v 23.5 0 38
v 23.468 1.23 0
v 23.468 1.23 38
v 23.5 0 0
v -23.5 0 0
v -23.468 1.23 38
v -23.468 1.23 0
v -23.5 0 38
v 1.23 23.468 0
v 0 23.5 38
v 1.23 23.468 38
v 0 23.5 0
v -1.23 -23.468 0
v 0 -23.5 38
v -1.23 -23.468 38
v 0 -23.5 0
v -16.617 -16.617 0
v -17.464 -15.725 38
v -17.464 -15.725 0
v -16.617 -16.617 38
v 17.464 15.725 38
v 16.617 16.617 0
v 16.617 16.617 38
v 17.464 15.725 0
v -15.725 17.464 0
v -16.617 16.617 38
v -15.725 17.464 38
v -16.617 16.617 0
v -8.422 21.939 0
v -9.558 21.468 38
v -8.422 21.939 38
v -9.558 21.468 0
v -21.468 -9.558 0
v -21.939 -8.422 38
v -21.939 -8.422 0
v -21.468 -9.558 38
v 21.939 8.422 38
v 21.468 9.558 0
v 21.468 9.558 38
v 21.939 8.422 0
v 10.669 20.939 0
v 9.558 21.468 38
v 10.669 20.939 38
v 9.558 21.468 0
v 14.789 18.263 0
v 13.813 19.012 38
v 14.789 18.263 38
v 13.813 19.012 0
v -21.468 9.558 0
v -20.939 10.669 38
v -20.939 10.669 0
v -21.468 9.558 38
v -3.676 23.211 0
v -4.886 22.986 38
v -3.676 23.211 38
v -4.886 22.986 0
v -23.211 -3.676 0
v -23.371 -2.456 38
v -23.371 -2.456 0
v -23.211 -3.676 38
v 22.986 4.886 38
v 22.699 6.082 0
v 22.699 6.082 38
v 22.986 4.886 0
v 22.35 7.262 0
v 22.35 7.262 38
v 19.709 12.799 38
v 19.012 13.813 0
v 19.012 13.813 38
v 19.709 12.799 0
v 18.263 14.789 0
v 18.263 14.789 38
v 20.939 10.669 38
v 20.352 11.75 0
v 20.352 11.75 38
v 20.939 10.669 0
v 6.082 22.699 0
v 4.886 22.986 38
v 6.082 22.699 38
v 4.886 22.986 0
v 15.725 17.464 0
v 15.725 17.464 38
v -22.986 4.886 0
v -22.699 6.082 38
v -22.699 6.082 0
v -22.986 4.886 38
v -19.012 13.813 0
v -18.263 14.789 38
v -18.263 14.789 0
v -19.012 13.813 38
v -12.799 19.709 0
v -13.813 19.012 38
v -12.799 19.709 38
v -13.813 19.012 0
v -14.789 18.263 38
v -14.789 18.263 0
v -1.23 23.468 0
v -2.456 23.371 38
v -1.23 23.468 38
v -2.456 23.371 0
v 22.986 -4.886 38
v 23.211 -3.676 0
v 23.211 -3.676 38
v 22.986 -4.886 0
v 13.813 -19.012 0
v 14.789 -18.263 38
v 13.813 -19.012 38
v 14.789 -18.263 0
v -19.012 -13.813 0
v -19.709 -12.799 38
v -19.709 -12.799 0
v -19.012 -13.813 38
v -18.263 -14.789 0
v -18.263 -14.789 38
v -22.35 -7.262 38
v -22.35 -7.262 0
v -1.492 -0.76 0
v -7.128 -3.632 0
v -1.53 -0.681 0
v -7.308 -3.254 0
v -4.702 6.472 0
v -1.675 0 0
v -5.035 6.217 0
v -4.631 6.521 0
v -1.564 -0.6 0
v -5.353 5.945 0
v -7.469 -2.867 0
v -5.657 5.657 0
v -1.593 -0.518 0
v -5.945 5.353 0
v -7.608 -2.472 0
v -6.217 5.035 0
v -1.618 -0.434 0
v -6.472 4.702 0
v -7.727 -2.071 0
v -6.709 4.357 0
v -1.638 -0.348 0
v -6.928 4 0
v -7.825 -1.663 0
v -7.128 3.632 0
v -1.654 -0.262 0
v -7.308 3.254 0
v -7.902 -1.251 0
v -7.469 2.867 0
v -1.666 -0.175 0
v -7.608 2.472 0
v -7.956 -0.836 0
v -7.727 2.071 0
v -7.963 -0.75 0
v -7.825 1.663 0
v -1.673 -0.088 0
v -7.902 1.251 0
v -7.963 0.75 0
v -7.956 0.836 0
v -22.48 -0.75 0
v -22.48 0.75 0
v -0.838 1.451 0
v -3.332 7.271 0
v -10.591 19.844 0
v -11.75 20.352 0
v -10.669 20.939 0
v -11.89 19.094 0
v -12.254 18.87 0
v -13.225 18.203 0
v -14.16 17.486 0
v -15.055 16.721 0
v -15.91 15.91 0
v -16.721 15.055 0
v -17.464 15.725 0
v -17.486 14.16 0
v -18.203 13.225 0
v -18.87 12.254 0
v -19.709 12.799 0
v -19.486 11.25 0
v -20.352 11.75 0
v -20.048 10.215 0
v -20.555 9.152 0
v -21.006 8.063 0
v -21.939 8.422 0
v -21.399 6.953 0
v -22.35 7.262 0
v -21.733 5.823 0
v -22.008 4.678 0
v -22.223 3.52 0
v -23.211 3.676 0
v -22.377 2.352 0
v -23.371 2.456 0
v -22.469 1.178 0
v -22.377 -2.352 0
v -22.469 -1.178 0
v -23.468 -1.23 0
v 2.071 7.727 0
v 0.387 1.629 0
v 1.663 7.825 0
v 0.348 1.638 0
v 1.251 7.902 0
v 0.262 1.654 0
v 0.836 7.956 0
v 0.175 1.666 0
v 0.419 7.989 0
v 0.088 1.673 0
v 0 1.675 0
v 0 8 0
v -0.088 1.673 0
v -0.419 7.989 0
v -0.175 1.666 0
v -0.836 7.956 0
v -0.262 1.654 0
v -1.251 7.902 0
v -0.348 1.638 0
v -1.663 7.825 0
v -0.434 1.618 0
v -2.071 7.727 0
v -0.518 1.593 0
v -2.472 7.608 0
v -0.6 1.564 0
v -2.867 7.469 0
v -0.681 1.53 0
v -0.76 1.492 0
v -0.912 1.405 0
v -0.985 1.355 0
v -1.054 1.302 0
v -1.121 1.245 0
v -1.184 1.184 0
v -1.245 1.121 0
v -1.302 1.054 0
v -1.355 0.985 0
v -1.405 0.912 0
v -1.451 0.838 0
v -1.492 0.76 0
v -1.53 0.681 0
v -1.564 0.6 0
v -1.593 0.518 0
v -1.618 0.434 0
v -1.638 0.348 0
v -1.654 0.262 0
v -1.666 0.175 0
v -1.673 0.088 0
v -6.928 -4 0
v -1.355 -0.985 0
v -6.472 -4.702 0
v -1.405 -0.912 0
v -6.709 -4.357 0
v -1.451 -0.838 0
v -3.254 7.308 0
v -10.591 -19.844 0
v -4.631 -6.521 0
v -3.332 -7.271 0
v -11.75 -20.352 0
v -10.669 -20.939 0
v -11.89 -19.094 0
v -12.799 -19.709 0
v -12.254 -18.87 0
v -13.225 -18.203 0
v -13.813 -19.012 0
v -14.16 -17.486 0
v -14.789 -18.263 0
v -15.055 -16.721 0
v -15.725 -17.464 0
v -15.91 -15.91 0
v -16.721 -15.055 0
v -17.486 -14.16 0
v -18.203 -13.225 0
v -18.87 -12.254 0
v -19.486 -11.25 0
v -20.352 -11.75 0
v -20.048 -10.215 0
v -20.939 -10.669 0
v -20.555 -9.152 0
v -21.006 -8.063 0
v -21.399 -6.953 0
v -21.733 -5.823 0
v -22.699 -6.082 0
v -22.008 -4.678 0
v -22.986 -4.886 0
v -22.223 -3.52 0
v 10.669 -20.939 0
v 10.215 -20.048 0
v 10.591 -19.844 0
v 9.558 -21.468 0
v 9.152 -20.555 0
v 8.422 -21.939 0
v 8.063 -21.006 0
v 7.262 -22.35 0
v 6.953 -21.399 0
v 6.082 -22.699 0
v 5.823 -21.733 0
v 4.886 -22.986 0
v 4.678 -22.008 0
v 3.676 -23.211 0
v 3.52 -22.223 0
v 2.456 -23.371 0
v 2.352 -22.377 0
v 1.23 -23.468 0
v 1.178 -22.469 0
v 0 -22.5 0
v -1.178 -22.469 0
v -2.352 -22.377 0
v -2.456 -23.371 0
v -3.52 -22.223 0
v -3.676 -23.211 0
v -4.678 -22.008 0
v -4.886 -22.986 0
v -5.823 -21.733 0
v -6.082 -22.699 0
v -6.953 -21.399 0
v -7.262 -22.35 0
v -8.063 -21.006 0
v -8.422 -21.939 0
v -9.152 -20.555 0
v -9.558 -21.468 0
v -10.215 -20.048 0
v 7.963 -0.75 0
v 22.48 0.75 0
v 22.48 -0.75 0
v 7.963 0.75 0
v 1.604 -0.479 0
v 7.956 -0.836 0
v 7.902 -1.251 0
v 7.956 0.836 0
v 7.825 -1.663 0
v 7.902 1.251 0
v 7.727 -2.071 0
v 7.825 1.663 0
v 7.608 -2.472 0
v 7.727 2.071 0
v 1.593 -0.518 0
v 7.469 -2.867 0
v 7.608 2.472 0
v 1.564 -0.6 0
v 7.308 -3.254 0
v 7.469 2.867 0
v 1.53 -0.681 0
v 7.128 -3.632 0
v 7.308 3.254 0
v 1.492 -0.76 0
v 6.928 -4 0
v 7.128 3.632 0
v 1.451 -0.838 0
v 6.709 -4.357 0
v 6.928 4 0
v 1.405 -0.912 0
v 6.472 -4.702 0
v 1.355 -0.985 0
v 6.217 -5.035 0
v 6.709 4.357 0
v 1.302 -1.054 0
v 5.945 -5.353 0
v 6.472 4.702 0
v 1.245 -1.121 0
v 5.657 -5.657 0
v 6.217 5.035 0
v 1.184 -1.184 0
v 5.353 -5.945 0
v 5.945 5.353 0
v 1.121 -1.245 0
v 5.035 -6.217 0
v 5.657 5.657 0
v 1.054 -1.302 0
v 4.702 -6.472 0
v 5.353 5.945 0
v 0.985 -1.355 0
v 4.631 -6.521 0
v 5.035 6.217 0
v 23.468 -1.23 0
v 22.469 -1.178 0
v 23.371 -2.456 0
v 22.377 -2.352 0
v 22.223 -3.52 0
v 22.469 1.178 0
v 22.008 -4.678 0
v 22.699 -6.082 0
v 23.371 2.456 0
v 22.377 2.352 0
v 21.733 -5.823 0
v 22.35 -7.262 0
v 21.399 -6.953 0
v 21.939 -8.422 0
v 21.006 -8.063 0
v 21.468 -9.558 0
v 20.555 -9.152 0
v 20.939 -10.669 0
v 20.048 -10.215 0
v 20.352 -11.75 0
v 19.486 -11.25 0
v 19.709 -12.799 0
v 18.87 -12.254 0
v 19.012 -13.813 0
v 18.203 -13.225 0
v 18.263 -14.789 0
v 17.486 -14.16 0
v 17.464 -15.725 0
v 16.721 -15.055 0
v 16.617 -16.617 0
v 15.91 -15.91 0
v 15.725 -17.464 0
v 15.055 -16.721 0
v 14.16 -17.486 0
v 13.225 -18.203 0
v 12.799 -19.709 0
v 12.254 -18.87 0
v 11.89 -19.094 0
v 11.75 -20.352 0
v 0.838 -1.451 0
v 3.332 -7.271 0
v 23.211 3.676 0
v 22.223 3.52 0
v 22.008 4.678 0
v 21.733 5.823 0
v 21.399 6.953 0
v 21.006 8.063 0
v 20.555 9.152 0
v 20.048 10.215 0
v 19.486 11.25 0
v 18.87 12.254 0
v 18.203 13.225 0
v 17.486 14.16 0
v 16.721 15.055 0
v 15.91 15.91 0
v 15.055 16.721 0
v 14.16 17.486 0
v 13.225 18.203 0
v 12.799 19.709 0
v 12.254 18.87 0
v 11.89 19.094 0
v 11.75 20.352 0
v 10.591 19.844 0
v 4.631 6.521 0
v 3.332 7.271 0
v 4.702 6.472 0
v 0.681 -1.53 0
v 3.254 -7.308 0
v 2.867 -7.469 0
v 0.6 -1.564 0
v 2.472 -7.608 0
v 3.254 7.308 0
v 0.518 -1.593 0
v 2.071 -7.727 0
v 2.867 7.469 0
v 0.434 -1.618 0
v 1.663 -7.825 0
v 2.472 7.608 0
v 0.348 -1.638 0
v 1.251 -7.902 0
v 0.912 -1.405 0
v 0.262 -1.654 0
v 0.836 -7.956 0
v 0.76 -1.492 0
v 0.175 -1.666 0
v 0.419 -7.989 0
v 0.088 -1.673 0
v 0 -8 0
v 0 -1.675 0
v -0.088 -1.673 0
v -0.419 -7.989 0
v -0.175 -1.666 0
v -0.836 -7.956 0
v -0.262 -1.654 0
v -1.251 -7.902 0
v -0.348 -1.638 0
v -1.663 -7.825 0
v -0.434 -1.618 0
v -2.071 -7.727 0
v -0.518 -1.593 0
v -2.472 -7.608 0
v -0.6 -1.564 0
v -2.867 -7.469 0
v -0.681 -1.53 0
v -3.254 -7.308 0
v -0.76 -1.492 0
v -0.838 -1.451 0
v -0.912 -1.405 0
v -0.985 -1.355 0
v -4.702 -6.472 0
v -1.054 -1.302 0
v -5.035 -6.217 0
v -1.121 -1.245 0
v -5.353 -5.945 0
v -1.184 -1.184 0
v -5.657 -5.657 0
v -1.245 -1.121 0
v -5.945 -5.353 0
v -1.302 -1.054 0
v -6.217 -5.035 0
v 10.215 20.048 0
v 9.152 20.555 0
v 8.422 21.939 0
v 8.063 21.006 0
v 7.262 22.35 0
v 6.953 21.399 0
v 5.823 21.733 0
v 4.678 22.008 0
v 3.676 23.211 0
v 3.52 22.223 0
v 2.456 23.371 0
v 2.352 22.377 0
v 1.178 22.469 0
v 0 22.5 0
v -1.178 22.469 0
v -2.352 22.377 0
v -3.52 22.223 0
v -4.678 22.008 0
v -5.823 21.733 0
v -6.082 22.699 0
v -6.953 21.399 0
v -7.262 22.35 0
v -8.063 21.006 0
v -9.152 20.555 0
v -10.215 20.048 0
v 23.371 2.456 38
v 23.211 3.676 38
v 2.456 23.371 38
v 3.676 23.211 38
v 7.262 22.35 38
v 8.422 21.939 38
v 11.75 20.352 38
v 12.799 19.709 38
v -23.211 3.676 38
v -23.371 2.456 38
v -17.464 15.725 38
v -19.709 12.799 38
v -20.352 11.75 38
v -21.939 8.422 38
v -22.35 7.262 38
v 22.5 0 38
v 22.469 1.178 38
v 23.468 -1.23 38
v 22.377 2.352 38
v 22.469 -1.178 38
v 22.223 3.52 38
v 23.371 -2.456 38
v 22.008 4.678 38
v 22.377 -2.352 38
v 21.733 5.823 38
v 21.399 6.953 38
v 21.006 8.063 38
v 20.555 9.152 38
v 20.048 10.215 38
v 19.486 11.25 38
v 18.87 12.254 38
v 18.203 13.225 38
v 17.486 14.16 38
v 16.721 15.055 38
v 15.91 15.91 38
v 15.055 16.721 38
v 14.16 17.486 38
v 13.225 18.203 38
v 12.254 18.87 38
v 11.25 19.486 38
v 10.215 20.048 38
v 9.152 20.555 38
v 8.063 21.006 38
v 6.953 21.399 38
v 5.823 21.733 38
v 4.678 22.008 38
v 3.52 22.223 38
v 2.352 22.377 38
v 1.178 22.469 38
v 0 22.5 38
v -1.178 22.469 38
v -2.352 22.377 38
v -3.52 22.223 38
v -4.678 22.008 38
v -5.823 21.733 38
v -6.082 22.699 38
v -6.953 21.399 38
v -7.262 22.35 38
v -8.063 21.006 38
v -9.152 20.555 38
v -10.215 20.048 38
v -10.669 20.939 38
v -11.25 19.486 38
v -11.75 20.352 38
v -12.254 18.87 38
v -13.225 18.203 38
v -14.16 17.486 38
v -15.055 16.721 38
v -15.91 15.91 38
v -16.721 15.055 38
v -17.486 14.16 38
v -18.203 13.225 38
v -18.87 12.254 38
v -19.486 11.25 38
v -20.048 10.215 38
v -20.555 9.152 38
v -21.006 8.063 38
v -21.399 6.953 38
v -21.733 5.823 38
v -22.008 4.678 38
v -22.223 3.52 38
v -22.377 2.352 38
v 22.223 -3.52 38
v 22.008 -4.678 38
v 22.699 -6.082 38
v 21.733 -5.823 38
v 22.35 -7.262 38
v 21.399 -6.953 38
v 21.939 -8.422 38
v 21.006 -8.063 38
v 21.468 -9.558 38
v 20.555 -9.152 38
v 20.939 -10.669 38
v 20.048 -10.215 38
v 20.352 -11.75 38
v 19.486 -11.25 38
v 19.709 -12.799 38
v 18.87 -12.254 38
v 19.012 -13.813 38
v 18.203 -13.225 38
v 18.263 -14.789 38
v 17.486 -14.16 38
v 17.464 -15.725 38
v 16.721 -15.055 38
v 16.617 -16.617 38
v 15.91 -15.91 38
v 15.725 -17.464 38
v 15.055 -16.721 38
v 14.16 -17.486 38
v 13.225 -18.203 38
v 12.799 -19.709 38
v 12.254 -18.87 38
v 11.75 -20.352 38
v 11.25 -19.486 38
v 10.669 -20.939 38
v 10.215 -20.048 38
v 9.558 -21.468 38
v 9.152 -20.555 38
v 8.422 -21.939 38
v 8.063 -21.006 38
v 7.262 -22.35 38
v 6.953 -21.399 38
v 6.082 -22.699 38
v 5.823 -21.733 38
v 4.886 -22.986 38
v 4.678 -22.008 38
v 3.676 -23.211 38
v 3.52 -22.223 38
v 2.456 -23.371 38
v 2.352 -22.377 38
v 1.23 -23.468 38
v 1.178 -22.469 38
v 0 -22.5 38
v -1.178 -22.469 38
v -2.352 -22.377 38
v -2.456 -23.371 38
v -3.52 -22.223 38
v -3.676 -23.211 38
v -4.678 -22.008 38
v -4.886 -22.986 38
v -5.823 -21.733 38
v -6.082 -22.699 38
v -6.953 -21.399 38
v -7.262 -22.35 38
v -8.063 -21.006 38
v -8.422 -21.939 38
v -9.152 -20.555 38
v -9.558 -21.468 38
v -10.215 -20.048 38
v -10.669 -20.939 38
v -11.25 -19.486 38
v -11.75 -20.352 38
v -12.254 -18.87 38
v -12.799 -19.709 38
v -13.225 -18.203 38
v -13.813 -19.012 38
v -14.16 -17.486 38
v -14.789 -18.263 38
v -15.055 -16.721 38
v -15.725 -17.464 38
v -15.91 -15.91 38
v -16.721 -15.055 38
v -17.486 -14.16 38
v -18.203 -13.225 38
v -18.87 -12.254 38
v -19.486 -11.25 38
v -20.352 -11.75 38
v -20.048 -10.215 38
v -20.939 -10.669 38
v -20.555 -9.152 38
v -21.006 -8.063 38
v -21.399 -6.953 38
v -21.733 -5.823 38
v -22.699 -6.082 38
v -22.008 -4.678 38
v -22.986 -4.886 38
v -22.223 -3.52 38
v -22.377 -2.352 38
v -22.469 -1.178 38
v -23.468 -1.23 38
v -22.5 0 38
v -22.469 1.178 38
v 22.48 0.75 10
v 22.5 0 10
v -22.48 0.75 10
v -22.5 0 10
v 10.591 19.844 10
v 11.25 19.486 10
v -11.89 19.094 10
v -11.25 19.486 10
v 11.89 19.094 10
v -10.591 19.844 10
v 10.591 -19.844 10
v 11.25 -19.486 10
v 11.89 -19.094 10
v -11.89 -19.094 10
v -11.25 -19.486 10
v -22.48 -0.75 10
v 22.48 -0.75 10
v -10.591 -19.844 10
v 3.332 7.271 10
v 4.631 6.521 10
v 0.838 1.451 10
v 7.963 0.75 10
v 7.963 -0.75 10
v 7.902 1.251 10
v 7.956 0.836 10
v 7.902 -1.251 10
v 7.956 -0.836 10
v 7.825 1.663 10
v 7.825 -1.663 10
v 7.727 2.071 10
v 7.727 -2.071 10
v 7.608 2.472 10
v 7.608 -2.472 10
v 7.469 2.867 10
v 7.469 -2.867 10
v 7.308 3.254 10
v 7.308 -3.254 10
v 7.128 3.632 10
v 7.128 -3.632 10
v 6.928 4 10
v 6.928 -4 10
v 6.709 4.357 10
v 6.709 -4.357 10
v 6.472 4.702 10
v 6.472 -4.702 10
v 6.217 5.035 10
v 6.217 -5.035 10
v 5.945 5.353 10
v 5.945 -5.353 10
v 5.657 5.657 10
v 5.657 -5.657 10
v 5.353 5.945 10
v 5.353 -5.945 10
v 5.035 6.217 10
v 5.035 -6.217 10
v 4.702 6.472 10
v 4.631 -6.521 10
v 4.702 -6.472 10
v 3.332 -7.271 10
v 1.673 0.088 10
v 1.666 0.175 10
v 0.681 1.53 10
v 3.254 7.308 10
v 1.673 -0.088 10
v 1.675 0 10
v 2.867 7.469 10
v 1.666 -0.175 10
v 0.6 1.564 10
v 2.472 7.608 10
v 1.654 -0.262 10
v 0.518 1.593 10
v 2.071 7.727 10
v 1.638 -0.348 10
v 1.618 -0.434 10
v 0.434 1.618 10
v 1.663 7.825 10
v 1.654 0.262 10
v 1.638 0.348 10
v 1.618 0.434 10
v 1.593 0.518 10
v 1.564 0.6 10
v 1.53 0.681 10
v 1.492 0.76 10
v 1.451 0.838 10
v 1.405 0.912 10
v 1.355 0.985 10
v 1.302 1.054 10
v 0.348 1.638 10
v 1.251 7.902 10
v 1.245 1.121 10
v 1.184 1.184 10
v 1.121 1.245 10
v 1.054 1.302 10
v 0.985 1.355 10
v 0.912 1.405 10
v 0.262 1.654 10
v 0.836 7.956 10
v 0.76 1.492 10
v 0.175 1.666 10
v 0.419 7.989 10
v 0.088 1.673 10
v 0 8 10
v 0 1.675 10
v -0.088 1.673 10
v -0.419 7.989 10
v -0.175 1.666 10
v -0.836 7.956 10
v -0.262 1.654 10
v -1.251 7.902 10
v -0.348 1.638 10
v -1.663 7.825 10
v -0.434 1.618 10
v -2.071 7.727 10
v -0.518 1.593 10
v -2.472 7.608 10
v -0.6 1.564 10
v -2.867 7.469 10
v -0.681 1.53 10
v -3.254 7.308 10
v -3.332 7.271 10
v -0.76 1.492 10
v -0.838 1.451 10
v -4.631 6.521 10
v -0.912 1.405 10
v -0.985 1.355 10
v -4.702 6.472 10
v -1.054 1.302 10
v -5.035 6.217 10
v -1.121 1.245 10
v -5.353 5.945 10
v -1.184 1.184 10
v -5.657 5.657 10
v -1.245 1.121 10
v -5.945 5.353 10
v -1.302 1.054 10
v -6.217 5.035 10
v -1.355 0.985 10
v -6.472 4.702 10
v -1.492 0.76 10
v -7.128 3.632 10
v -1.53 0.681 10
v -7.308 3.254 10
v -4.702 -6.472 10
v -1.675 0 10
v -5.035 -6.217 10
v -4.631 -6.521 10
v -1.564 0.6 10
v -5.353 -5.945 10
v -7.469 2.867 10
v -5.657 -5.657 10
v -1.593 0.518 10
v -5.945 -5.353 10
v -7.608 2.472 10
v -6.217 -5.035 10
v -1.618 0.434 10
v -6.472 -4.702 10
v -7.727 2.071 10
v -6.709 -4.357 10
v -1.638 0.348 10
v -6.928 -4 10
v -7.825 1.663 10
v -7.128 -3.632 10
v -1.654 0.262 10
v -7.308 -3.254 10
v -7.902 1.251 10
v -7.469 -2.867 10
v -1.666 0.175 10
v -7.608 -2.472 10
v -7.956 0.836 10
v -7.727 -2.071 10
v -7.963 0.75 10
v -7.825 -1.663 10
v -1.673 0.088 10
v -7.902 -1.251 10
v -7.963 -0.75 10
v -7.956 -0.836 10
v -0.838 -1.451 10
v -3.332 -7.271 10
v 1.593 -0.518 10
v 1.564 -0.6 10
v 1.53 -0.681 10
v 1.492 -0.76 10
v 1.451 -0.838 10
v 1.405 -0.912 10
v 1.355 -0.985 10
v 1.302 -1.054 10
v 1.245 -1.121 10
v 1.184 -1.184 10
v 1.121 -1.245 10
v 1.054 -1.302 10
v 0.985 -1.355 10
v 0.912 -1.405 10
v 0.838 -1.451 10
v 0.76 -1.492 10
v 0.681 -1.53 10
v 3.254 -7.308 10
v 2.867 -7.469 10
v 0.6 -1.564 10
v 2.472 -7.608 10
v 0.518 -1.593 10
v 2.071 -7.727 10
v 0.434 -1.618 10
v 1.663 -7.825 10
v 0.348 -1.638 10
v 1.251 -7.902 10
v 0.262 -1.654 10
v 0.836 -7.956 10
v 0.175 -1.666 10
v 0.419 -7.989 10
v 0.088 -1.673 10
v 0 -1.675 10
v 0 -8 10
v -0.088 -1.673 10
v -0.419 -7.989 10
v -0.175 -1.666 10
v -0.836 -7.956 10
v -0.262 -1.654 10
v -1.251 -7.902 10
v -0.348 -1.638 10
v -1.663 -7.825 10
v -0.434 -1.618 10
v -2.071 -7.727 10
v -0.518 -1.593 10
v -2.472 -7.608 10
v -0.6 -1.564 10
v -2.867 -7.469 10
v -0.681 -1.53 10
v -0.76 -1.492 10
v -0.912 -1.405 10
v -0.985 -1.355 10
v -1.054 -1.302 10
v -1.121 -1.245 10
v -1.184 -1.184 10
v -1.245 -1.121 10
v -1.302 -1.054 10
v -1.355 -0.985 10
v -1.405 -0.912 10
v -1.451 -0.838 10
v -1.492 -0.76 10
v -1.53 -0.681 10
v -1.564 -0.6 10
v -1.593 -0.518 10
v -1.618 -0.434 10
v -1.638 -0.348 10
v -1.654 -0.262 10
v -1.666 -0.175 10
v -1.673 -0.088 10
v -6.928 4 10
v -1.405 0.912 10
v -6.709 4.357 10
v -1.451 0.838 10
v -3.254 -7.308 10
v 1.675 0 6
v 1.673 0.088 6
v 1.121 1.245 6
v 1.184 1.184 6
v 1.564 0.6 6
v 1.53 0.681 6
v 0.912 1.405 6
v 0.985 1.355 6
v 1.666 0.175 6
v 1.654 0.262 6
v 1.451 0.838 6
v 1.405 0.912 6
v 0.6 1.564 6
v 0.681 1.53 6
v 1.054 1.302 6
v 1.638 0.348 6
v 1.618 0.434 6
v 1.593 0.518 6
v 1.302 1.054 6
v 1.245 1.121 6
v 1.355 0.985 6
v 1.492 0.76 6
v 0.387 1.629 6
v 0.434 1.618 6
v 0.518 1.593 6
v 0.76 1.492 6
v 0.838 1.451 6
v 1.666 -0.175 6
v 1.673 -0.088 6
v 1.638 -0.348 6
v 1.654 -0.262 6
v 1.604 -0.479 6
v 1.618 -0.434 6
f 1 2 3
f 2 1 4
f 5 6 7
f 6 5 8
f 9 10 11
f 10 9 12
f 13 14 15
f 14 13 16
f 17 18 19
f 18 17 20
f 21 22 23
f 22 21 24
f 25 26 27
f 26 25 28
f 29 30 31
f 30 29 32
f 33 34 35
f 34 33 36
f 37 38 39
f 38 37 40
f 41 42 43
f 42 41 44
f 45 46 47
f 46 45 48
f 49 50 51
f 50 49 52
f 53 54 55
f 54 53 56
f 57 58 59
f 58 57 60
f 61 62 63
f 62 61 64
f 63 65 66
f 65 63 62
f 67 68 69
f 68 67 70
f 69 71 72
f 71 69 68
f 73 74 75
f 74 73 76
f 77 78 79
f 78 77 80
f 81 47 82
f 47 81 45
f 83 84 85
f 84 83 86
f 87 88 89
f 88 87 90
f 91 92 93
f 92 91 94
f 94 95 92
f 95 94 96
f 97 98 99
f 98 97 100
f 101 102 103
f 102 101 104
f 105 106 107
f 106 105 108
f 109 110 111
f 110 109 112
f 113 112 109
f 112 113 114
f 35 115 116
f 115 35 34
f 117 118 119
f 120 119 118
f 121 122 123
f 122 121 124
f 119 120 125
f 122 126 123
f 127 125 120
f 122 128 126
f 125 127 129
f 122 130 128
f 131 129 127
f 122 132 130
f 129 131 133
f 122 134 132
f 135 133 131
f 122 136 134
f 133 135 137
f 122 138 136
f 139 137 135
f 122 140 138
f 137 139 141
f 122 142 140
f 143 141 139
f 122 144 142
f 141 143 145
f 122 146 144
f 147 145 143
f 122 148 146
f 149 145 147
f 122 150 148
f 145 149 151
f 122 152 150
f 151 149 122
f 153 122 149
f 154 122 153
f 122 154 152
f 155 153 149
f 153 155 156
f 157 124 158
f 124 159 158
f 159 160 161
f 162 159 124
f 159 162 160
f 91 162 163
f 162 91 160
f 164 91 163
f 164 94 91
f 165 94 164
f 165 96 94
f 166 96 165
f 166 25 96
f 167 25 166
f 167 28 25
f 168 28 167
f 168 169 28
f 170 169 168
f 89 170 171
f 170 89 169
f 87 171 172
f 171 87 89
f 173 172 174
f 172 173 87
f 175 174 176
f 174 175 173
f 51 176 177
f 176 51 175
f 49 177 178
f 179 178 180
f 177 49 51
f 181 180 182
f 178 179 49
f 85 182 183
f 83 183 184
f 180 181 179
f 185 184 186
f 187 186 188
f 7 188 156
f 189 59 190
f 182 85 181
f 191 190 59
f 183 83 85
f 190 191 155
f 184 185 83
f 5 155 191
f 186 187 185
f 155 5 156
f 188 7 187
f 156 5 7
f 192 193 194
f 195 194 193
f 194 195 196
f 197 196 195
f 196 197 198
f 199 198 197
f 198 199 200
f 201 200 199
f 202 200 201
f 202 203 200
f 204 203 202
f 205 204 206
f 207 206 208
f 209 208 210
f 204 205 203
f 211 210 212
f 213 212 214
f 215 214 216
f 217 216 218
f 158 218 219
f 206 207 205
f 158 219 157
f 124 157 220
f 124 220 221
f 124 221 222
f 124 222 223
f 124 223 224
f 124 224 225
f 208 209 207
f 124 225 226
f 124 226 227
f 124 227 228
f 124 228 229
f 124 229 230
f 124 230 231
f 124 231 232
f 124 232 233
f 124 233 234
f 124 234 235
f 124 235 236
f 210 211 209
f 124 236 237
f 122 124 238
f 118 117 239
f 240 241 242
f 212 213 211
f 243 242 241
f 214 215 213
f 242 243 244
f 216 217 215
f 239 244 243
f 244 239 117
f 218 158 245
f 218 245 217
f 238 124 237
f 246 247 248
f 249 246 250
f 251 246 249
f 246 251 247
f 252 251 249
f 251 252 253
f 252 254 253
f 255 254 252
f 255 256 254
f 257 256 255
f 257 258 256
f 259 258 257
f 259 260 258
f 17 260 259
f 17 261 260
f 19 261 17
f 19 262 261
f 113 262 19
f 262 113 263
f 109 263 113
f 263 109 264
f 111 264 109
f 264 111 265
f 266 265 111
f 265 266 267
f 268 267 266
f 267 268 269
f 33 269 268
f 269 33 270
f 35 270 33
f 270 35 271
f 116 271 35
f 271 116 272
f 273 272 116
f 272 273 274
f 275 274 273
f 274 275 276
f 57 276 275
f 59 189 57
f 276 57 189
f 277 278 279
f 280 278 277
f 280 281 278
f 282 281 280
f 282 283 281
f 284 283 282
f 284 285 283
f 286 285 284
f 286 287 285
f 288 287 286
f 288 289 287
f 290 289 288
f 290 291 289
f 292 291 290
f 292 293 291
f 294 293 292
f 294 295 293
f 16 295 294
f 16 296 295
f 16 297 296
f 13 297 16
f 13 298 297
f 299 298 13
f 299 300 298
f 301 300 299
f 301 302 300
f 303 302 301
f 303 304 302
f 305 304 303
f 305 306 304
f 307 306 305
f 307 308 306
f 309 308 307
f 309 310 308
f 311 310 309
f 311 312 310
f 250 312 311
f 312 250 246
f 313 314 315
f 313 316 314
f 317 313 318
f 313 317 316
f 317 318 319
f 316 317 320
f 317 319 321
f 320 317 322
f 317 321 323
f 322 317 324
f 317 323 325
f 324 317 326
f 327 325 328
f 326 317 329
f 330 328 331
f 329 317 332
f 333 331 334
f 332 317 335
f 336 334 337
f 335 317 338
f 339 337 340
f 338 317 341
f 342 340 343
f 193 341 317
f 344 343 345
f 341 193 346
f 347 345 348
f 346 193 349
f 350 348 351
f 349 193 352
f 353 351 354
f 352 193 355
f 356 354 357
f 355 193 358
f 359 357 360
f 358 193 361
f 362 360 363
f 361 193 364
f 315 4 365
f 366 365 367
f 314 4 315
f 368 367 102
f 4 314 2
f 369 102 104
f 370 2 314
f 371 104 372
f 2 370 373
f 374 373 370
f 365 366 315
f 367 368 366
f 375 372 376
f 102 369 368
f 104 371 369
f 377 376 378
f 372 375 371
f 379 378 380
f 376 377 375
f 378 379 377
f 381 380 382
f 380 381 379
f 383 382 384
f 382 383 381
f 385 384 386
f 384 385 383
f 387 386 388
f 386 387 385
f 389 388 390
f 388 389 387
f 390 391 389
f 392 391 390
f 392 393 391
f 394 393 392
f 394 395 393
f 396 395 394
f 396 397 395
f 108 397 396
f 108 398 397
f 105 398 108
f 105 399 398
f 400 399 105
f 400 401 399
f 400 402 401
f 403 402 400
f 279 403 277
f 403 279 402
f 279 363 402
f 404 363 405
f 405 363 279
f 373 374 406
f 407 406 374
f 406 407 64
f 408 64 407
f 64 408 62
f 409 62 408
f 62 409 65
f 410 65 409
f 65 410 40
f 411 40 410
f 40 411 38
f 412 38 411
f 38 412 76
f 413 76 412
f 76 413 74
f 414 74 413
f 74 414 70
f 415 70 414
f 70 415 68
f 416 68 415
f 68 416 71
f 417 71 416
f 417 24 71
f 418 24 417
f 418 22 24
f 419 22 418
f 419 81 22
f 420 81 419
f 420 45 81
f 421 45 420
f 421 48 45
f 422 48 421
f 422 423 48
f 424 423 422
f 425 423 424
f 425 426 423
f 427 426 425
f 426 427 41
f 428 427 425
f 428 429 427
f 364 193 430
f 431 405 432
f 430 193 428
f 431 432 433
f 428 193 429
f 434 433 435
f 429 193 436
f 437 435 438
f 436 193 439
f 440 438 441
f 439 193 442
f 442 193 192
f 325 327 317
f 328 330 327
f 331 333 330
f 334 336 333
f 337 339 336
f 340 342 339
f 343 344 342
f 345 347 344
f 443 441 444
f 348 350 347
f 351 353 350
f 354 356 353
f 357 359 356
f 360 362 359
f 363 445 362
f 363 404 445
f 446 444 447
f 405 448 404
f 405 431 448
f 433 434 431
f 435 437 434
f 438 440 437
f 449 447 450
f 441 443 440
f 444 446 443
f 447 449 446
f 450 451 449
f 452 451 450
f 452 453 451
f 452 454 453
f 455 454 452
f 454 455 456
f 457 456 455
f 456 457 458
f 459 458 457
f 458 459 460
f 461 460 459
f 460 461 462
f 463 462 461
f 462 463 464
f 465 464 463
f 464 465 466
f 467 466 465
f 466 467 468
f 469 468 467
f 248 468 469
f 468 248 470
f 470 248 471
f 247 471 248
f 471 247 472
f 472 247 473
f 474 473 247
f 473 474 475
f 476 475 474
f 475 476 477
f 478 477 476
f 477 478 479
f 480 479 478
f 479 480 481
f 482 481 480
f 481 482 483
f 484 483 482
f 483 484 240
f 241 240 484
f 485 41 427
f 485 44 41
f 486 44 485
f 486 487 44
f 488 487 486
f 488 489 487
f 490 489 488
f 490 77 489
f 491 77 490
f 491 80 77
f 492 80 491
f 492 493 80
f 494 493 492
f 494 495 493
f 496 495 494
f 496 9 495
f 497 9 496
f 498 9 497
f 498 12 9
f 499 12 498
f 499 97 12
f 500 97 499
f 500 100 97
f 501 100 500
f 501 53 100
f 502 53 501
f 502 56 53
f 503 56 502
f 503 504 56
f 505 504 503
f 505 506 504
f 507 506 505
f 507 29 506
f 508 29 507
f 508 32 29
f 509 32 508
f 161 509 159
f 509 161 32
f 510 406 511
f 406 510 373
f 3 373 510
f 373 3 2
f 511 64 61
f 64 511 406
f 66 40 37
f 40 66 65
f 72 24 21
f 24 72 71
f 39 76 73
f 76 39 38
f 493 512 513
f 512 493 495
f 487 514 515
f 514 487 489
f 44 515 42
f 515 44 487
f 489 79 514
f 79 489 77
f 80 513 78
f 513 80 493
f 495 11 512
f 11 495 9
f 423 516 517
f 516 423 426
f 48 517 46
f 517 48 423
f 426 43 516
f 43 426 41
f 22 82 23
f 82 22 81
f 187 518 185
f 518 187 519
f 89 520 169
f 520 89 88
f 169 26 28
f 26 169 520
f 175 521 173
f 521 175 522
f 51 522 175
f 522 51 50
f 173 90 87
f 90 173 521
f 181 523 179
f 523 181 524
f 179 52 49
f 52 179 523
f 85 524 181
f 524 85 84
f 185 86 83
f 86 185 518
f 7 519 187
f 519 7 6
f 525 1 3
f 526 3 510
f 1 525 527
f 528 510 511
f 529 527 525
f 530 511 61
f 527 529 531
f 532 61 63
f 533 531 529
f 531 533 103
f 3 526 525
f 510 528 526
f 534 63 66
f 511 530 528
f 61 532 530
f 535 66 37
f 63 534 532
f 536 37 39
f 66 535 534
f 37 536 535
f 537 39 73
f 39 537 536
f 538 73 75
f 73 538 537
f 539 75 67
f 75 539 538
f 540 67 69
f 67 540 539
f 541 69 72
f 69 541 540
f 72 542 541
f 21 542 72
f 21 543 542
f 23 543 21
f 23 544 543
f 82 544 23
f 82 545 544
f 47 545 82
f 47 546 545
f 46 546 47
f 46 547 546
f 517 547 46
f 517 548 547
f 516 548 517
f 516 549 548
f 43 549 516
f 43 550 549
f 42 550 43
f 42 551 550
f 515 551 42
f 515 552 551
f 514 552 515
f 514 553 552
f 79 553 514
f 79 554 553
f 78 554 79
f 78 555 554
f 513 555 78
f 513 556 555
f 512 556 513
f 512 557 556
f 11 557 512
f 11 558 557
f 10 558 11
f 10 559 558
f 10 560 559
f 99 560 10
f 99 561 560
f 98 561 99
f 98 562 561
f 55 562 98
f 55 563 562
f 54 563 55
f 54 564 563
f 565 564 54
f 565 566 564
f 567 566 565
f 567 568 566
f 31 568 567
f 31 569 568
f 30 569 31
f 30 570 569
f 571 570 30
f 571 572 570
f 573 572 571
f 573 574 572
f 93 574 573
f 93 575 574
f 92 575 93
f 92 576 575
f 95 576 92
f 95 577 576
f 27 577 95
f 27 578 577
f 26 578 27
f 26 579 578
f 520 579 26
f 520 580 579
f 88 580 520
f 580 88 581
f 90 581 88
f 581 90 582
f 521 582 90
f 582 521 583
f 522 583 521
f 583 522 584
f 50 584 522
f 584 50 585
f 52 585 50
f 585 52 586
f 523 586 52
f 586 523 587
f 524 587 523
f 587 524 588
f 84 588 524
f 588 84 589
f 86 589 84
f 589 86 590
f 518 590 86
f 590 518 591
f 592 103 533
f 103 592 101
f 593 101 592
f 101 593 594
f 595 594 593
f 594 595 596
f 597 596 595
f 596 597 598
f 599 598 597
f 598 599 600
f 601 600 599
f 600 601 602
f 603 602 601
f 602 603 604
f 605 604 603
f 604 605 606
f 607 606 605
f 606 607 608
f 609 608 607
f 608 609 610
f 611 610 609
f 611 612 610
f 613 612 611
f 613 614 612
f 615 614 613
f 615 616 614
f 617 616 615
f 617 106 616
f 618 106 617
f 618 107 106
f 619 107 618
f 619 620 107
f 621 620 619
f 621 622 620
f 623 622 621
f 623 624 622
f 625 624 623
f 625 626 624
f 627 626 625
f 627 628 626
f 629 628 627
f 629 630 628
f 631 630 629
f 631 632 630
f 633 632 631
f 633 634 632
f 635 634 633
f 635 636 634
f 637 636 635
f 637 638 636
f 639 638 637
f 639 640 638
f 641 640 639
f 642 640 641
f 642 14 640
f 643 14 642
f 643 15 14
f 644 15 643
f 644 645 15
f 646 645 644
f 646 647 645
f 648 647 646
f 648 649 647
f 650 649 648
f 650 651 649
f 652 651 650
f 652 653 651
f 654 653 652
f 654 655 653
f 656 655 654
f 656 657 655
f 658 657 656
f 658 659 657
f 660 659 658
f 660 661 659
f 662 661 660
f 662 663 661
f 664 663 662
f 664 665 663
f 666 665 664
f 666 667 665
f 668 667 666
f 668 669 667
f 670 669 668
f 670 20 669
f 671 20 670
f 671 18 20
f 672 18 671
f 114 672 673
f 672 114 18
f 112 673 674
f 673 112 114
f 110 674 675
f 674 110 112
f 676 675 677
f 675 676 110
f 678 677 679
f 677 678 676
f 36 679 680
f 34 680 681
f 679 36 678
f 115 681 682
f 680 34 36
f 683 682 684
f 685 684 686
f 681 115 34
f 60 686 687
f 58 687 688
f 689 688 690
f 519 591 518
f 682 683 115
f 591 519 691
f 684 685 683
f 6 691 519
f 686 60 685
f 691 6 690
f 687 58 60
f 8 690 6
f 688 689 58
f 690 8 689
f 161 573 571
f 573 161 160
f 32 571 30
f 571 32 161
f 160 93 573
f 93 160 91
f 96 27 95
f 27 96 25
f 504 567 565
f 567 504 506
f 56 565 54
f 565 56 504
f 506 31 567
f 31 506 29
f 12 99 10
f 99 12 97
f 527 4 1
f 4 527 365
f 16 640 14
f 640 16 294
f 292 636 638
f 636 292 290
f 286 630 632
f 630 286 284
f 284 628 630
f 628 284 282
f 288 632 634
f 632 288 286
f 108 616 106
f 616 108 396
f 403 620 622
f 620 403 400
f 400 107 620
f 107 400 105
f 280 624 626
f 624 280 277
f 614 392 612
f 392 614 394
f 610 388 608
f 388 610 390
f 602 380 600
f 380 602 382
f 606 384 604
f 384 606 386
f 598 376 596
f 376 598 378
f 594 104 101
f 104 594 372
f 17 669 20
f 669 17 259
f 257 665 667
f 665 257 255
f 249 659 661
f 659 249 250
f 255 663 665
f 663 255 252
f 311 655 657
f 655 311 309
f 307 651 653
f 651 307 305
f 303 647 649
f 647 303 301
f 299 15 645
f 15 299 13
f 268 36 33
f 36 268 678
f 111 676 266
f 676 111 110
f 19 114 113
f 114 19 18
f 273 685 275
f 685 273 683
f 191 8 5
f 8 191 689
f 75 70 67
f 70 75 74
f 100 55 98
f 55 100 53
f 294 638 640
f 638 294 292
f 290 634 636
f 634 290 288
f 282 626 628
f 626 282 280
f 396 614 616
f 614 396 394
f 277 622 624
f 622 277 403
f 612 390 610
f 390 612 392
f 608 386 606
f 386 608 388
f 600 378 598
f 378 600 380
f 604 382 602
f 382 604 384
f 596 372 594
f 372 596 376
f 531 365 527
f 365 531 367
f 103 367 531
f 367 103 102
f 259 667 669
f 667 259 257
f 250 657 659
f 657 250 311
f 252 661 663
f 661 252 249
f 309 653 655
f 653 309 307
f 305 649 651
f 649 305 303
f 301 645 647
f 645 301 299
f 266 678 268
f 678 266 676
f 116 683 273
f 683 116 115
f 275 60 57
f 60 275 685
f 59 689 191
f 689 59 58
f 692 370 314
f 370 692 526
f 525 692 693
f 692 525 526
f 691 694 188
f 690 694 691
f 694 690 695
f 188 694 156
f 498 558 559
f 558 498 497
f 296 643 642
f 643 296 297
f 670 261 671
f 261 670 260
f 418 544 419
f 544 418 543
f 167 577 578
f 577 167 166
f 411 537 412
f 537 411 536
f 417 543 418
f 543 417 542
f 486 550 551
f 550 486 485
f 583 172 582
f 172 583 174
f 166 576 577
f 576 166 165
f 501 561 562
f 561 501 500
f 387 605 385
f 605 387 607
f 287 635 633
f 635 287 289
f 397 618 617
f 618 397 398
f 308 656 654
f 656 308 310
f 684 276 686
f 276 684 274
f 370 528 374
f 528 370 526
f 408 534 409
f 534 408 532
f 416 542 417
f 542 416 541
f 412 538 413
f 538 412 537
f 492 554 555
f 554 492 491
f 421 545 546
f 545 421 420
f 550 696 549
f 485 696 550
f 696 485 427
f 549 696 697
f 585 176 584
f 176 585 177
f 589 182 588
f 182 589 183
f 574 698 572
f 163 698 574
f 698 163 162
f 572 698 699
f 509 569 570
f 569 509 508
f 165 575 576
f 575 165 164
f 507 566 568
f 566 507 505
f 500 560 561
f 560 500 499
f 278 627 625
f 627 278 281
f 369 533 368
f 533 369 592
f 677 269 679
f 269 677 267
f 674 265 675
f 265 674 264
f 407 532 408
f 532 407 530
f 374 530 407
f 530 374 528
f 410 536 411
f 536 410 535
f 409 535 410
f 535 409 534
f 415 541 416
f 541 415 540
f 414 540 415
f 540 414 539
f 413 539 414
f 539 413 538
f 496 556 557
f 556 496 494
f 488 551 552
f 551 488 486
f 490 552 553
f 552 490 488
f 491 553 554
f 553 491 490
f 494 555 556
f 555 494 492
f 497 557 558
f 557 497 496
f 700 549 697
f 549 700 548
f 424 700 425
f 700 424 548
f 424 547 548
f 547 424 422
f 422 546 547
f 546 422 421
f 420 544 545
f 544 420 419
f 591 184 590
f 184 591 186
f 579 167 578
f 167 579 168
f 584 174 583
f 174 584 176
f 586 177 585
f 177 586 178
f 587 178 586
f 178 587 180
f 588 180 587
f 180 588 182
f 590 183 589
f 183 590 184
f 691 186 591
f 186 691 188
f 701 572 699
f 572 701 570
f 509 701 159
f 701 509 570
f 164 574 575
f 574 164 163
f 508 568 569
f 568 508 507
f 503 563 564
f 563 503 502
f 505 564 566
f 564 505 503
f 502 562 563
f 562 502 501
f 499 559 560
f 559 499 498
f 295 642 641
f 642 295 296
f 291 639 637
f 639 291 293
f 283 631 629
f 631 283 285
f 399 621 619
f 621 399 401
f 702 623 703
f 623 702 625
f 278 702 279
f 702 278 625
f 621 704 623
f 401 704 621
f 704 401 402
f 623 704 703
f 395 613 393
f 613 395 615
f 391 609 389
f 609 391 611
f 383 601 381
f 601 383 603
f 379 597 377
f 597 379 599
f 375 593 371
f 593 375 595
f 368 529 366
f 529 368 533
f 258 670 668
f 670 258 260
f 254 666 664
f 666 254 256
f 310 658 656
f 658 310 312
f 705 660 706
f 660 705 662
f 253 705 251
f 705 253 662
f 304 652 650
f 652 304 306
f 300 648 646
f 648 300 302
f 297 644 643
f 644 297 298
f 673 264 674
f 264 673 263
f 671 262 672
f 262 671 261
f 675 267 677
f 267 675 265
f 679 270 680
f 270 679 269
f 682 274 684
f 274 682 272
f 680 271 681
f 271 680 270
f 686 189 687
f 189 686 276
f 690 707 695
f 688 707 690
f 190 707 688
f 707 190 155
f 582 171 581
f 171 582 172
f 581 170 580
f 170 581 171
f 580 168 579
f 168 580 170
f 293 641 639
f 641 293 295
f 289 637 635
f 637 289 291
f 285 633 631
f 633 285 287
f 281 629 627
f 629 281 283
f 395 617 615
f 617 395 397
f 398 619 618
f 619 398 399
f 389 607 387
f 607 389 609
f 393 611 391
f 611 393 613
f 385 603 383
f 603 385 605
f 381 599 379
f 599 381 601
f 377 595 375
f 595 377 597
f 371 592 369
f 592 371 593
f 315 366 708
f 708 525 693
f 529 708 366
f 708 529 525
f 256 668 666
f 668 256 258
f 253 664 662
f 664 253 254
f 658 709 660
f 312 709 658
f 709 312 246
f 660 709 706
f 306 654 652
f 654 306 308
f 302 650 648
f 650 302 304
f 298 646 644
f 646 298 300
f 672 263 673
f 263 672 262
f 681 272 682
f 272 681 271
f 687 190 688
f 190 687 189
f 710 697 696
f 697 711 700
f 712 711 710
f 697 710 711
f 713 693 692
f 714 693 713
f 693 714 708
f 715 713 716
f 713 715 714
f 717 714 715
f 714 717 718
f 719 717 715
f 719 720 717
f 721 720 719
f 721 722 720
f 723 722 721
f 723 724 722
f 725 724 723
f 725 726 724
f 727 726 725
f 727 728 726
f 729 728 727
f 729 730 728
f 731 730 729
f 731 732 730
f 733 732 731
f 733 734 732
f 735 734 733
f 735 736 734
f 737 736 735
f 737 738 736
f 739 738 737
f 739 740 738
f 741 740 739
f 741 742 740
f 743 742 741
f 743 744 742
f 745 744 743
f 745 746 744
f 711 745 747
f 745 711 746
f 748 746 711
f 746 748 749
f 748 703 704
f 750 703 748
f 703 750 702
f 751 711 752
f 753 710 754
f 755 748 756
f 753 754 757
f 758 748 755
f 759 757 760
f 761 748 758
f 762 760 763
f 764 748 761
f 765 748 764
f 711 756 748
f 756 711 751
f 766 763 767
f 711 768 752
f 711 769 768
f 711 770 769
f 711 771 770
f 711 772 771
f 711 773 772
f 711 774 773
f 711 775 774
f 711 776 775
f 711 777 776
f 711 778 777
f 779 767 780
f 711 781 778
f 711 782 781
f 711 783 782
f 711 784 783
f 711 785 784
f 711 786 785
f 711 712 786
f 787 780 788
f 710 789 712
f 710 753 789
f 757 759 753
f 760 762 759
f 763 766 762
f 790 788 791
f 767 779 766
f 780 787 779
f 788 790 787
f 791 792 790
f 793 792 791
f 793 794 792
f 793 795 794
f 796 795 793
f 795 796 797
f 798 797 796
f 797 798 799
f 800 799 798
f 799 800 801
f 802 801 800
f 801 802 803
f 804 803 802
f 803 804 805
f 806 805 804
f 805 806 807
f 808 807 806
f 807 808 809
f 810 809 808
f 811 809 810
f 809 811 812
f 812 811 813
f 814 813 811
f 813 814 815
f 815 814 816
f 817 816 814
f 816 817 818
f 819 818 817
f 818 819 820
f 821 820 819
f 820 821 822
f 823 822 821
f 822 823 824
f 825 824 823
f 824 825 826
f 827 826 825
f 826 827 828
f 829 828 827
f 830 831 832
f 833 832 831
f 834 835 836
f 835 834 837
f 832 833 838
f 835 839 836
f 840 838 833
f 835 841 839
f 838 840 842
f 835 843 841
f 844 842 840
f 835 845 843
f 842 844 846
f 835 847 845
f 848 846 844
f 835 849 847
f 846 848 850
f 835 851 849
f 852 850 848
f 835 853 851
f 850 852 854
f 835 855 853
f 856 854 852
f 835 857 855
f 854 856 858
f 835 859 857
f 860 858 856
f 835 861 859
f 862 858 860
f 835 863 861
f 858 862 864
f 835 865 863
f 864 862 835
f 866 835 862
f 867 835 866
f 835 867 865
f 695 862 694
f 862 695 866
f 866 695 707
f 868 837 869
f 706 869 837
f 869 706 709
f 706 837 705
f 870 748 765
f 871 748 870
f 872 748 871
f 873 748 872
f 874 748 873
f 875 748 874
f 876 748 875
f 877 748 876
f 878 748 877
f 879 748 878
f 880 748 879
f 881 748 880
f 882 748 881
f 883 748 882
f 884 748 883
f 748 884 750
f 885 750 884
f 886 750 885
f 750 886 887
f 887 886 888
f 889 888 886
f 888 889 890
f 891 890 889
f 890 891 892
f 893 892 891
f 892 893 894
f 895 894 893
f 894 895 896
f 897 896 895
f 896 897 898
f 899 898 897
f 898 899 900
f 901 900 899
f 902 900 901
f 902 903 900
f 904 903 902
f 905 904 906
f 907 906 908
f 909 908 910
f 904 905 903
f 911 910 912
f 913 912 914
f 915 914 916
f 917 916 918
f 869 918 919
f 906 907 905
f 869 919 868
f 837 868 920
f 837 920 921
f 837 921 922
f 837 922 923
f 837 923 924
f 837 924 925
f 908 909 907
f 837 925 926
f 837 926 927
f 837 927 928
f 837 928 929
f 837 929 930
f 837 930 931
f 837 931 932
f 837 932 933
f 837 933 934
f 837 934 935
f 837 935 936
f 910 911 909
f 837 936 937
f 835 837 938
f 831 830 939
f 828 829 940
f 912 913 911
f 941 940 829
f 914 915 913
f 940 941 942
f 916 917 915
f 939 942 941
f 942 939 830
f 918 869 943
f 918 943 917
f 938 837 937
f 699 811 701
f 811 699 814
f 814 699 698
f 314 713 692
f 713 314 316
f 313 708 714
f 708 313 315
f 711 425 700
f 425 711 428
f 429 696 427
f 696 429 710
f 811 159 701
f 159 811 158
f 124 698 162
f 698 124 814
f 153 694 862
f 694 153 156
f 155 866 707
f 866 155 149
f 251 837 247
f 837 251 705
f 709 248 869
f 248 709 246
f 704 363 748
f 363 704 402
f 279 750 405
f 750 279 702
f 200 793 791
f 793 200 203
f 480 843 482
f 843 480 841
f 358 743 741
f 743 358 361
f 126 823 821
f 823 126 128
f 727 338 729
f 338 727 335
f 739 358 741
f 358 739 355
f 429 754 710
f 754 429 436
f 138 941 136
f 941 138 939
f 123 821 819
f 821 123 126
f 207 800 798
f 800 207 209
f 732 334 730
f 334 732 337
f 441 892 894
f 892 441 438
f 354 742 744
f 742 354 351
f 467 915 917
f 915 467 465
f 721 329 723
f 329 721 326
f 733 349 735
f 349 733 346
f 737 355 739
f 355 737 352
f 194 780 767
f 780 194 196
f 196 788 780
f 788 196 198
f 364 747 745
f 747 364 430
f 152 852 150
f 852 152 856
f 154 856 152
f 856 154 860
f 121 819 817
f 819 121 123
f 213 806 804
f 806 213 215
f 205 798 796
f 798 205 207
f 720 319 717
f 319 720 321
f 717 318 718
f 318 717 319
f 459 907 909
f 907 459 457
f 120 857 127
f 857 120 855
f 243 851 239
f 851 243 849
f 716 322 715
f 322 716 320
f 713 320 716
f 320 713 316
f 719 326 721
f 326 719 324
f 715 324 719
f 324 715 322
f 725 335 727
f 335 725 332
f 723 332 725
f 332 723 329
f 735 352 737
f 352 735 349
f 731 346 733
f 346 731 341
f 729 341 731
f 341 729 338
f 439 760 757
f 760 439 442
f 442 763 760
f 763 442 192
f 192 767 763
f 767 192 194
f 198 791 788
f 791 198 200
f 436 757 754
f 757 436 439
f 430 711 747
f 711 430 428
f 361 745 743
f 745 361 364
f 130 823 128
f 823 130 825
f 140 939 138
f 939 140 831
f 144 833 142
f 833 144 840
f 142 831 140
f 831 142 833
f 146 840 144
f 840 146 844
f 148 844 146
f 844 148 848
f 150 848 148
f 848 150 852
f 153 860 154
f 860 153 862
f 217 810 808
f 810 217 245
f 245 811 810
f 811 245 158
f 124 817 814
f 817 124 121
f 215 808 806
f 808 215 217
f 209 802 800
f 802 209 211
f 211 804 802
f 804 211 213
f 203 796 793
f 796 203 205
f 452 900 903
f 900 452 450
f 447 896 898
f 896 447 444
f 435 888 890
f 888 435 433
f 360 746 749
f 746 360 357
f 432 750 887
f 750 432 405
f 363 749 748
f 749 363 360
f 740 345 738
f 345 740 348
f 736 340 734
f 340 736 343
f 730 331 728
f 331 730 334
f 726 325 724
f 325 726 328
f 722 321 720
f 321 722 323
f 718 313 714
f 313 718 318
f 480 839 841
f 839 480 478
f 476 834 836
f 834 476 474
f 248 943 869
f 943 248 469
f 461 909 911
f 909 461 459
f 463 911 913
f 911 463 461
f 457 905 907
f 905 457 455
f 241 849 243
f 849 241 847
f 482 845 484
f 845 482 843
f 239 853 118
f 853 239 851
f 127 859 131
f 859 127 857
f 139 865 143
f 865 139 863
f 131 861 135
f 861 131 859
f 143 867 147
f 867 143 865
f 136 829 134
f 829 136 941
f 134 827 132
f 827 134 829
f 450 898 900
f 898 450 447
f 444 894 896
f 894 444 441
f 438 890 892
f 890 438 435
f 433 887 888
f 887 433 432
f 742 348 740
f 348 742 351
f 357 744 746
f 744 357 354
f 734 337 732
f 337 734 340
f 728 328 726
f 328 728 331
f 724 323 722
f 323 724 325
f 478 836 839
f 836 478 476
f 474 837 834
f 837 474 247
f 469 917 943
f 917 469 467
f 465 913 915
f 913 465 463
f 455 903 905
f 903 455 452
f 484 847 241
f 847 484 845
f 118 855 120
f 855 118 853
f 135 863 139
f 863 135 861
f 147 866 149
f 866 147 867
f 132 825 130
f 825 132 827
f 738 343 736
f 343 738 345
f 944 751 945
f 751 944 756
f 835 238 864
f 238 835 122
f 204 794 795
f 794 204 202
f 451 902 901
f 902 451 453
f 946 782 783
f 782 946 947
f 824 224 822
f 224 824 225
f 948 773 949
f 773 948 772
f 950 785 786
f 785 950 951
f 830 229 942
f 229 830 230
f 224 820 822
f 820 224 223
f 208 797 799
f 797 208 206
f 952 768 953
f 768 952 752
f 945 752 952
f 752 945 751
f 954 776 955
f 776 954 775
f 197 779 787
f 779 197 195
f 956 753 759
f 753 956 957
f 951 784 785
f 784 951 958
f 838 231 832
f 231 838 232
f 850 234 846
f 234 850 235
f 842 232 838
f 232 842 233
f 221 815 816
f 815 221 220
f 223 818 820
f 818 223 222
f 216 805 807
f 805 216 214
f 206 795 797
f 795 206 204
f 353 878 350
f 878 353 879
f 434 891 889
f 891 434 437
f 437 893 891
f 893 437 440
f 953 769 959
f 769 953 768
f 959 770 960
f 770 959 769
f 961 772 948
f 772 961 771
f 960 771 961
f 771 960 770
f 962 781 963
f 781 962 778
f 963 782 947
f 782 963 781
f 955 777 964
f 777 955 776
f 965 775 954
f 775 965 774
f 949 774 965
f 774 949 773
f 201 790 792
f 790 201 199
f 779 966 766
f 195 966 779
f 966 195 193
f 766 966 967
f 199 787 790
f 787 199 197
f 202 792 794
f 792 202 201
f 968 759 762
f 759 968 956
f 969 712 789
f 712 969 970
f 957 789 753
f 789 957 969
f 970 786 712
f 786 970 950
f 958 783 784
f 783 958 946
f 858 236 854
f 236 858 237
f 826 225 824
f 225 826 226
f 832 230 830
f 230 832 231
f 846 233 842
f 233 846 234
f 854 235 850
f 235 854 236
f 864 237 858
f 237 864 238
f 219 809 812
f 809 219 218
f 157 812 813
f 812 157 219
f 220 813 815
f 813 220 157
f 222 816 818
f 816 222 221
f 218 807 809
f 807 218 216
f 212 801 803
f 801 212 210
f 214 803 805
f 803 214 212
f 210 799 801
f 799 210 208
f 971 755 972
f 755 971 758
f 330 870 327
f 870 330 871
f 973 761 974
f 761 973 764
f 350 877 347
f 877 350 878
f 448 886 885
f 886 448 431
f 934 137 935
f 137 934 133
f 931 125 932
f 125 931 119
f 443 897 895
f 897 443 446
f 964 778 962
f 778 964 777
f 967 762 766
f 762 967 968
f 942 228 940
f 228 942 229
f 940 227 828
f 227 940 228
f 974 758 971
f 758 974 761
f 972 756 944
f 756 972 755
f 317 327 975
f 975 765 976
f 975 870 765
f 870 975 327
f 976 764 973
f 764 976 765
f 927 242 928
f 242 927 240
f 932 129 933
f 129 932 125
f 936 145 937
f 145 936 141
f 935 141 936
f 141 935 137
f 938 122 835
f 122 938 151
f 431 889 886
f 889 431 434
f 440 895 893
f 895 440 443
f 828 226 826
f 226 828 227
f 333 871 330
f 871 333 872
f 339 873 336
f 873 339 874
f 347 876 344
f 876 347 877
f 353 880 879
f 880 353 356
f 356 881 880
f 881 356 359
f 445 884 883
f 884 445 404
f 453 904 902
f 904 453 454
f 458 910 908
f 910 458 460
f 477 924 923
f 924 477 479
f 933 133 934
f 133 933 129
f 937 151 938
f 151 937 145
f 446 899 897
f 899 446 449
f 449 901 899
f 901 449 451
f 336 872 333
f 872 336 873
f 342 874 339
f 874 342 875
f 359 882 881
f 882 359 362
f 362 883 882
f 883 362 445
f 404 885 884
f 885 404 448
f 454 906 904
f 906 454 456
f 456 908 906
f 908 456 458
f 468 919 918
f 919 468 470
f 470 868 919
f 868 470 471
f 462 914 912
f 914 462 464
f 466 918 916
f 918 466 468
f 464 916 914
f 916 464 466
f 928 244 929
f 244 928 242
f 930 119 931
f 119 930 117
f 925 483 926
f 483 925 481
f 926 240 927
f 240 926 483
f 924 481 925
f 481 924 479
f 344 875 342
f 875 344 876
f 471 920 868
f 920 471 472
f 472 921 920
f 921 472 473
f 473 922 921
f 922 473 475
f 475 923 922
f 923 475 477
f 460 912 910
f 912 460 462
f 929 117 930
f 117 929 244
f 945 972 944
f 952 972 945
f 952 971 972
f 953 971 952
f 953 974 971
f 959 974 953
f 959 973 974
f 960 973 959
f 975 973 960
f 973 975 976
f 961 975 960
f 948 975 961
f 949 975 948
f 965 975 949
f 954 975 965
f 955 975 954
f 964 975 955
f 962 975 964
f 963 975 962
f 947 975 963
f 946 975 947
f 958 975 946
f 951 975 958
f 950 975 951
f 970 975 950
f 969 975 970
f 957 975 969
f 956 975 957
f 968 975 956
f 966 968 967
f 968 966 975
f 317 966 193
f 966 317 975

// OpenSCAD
$fn=120;
difference(){
cylinder(d=47,h=38);
translate([0,0,-1])cylinder(d=45,h=40);
}
difference(){
union()
{
for(i=[0:60:300])
{
    rotate([0,0,i])translate([3,-0.75,0])
    cube(size=[20,1.5,10]);
} 
cylinder(d=16,h=10);
}
translate([0,0,-1])cylinder(d=3.35,h=21);
}
rotate([0,0,30])translate([1.15,-2,0])
cube(size=[2,4,6]);
